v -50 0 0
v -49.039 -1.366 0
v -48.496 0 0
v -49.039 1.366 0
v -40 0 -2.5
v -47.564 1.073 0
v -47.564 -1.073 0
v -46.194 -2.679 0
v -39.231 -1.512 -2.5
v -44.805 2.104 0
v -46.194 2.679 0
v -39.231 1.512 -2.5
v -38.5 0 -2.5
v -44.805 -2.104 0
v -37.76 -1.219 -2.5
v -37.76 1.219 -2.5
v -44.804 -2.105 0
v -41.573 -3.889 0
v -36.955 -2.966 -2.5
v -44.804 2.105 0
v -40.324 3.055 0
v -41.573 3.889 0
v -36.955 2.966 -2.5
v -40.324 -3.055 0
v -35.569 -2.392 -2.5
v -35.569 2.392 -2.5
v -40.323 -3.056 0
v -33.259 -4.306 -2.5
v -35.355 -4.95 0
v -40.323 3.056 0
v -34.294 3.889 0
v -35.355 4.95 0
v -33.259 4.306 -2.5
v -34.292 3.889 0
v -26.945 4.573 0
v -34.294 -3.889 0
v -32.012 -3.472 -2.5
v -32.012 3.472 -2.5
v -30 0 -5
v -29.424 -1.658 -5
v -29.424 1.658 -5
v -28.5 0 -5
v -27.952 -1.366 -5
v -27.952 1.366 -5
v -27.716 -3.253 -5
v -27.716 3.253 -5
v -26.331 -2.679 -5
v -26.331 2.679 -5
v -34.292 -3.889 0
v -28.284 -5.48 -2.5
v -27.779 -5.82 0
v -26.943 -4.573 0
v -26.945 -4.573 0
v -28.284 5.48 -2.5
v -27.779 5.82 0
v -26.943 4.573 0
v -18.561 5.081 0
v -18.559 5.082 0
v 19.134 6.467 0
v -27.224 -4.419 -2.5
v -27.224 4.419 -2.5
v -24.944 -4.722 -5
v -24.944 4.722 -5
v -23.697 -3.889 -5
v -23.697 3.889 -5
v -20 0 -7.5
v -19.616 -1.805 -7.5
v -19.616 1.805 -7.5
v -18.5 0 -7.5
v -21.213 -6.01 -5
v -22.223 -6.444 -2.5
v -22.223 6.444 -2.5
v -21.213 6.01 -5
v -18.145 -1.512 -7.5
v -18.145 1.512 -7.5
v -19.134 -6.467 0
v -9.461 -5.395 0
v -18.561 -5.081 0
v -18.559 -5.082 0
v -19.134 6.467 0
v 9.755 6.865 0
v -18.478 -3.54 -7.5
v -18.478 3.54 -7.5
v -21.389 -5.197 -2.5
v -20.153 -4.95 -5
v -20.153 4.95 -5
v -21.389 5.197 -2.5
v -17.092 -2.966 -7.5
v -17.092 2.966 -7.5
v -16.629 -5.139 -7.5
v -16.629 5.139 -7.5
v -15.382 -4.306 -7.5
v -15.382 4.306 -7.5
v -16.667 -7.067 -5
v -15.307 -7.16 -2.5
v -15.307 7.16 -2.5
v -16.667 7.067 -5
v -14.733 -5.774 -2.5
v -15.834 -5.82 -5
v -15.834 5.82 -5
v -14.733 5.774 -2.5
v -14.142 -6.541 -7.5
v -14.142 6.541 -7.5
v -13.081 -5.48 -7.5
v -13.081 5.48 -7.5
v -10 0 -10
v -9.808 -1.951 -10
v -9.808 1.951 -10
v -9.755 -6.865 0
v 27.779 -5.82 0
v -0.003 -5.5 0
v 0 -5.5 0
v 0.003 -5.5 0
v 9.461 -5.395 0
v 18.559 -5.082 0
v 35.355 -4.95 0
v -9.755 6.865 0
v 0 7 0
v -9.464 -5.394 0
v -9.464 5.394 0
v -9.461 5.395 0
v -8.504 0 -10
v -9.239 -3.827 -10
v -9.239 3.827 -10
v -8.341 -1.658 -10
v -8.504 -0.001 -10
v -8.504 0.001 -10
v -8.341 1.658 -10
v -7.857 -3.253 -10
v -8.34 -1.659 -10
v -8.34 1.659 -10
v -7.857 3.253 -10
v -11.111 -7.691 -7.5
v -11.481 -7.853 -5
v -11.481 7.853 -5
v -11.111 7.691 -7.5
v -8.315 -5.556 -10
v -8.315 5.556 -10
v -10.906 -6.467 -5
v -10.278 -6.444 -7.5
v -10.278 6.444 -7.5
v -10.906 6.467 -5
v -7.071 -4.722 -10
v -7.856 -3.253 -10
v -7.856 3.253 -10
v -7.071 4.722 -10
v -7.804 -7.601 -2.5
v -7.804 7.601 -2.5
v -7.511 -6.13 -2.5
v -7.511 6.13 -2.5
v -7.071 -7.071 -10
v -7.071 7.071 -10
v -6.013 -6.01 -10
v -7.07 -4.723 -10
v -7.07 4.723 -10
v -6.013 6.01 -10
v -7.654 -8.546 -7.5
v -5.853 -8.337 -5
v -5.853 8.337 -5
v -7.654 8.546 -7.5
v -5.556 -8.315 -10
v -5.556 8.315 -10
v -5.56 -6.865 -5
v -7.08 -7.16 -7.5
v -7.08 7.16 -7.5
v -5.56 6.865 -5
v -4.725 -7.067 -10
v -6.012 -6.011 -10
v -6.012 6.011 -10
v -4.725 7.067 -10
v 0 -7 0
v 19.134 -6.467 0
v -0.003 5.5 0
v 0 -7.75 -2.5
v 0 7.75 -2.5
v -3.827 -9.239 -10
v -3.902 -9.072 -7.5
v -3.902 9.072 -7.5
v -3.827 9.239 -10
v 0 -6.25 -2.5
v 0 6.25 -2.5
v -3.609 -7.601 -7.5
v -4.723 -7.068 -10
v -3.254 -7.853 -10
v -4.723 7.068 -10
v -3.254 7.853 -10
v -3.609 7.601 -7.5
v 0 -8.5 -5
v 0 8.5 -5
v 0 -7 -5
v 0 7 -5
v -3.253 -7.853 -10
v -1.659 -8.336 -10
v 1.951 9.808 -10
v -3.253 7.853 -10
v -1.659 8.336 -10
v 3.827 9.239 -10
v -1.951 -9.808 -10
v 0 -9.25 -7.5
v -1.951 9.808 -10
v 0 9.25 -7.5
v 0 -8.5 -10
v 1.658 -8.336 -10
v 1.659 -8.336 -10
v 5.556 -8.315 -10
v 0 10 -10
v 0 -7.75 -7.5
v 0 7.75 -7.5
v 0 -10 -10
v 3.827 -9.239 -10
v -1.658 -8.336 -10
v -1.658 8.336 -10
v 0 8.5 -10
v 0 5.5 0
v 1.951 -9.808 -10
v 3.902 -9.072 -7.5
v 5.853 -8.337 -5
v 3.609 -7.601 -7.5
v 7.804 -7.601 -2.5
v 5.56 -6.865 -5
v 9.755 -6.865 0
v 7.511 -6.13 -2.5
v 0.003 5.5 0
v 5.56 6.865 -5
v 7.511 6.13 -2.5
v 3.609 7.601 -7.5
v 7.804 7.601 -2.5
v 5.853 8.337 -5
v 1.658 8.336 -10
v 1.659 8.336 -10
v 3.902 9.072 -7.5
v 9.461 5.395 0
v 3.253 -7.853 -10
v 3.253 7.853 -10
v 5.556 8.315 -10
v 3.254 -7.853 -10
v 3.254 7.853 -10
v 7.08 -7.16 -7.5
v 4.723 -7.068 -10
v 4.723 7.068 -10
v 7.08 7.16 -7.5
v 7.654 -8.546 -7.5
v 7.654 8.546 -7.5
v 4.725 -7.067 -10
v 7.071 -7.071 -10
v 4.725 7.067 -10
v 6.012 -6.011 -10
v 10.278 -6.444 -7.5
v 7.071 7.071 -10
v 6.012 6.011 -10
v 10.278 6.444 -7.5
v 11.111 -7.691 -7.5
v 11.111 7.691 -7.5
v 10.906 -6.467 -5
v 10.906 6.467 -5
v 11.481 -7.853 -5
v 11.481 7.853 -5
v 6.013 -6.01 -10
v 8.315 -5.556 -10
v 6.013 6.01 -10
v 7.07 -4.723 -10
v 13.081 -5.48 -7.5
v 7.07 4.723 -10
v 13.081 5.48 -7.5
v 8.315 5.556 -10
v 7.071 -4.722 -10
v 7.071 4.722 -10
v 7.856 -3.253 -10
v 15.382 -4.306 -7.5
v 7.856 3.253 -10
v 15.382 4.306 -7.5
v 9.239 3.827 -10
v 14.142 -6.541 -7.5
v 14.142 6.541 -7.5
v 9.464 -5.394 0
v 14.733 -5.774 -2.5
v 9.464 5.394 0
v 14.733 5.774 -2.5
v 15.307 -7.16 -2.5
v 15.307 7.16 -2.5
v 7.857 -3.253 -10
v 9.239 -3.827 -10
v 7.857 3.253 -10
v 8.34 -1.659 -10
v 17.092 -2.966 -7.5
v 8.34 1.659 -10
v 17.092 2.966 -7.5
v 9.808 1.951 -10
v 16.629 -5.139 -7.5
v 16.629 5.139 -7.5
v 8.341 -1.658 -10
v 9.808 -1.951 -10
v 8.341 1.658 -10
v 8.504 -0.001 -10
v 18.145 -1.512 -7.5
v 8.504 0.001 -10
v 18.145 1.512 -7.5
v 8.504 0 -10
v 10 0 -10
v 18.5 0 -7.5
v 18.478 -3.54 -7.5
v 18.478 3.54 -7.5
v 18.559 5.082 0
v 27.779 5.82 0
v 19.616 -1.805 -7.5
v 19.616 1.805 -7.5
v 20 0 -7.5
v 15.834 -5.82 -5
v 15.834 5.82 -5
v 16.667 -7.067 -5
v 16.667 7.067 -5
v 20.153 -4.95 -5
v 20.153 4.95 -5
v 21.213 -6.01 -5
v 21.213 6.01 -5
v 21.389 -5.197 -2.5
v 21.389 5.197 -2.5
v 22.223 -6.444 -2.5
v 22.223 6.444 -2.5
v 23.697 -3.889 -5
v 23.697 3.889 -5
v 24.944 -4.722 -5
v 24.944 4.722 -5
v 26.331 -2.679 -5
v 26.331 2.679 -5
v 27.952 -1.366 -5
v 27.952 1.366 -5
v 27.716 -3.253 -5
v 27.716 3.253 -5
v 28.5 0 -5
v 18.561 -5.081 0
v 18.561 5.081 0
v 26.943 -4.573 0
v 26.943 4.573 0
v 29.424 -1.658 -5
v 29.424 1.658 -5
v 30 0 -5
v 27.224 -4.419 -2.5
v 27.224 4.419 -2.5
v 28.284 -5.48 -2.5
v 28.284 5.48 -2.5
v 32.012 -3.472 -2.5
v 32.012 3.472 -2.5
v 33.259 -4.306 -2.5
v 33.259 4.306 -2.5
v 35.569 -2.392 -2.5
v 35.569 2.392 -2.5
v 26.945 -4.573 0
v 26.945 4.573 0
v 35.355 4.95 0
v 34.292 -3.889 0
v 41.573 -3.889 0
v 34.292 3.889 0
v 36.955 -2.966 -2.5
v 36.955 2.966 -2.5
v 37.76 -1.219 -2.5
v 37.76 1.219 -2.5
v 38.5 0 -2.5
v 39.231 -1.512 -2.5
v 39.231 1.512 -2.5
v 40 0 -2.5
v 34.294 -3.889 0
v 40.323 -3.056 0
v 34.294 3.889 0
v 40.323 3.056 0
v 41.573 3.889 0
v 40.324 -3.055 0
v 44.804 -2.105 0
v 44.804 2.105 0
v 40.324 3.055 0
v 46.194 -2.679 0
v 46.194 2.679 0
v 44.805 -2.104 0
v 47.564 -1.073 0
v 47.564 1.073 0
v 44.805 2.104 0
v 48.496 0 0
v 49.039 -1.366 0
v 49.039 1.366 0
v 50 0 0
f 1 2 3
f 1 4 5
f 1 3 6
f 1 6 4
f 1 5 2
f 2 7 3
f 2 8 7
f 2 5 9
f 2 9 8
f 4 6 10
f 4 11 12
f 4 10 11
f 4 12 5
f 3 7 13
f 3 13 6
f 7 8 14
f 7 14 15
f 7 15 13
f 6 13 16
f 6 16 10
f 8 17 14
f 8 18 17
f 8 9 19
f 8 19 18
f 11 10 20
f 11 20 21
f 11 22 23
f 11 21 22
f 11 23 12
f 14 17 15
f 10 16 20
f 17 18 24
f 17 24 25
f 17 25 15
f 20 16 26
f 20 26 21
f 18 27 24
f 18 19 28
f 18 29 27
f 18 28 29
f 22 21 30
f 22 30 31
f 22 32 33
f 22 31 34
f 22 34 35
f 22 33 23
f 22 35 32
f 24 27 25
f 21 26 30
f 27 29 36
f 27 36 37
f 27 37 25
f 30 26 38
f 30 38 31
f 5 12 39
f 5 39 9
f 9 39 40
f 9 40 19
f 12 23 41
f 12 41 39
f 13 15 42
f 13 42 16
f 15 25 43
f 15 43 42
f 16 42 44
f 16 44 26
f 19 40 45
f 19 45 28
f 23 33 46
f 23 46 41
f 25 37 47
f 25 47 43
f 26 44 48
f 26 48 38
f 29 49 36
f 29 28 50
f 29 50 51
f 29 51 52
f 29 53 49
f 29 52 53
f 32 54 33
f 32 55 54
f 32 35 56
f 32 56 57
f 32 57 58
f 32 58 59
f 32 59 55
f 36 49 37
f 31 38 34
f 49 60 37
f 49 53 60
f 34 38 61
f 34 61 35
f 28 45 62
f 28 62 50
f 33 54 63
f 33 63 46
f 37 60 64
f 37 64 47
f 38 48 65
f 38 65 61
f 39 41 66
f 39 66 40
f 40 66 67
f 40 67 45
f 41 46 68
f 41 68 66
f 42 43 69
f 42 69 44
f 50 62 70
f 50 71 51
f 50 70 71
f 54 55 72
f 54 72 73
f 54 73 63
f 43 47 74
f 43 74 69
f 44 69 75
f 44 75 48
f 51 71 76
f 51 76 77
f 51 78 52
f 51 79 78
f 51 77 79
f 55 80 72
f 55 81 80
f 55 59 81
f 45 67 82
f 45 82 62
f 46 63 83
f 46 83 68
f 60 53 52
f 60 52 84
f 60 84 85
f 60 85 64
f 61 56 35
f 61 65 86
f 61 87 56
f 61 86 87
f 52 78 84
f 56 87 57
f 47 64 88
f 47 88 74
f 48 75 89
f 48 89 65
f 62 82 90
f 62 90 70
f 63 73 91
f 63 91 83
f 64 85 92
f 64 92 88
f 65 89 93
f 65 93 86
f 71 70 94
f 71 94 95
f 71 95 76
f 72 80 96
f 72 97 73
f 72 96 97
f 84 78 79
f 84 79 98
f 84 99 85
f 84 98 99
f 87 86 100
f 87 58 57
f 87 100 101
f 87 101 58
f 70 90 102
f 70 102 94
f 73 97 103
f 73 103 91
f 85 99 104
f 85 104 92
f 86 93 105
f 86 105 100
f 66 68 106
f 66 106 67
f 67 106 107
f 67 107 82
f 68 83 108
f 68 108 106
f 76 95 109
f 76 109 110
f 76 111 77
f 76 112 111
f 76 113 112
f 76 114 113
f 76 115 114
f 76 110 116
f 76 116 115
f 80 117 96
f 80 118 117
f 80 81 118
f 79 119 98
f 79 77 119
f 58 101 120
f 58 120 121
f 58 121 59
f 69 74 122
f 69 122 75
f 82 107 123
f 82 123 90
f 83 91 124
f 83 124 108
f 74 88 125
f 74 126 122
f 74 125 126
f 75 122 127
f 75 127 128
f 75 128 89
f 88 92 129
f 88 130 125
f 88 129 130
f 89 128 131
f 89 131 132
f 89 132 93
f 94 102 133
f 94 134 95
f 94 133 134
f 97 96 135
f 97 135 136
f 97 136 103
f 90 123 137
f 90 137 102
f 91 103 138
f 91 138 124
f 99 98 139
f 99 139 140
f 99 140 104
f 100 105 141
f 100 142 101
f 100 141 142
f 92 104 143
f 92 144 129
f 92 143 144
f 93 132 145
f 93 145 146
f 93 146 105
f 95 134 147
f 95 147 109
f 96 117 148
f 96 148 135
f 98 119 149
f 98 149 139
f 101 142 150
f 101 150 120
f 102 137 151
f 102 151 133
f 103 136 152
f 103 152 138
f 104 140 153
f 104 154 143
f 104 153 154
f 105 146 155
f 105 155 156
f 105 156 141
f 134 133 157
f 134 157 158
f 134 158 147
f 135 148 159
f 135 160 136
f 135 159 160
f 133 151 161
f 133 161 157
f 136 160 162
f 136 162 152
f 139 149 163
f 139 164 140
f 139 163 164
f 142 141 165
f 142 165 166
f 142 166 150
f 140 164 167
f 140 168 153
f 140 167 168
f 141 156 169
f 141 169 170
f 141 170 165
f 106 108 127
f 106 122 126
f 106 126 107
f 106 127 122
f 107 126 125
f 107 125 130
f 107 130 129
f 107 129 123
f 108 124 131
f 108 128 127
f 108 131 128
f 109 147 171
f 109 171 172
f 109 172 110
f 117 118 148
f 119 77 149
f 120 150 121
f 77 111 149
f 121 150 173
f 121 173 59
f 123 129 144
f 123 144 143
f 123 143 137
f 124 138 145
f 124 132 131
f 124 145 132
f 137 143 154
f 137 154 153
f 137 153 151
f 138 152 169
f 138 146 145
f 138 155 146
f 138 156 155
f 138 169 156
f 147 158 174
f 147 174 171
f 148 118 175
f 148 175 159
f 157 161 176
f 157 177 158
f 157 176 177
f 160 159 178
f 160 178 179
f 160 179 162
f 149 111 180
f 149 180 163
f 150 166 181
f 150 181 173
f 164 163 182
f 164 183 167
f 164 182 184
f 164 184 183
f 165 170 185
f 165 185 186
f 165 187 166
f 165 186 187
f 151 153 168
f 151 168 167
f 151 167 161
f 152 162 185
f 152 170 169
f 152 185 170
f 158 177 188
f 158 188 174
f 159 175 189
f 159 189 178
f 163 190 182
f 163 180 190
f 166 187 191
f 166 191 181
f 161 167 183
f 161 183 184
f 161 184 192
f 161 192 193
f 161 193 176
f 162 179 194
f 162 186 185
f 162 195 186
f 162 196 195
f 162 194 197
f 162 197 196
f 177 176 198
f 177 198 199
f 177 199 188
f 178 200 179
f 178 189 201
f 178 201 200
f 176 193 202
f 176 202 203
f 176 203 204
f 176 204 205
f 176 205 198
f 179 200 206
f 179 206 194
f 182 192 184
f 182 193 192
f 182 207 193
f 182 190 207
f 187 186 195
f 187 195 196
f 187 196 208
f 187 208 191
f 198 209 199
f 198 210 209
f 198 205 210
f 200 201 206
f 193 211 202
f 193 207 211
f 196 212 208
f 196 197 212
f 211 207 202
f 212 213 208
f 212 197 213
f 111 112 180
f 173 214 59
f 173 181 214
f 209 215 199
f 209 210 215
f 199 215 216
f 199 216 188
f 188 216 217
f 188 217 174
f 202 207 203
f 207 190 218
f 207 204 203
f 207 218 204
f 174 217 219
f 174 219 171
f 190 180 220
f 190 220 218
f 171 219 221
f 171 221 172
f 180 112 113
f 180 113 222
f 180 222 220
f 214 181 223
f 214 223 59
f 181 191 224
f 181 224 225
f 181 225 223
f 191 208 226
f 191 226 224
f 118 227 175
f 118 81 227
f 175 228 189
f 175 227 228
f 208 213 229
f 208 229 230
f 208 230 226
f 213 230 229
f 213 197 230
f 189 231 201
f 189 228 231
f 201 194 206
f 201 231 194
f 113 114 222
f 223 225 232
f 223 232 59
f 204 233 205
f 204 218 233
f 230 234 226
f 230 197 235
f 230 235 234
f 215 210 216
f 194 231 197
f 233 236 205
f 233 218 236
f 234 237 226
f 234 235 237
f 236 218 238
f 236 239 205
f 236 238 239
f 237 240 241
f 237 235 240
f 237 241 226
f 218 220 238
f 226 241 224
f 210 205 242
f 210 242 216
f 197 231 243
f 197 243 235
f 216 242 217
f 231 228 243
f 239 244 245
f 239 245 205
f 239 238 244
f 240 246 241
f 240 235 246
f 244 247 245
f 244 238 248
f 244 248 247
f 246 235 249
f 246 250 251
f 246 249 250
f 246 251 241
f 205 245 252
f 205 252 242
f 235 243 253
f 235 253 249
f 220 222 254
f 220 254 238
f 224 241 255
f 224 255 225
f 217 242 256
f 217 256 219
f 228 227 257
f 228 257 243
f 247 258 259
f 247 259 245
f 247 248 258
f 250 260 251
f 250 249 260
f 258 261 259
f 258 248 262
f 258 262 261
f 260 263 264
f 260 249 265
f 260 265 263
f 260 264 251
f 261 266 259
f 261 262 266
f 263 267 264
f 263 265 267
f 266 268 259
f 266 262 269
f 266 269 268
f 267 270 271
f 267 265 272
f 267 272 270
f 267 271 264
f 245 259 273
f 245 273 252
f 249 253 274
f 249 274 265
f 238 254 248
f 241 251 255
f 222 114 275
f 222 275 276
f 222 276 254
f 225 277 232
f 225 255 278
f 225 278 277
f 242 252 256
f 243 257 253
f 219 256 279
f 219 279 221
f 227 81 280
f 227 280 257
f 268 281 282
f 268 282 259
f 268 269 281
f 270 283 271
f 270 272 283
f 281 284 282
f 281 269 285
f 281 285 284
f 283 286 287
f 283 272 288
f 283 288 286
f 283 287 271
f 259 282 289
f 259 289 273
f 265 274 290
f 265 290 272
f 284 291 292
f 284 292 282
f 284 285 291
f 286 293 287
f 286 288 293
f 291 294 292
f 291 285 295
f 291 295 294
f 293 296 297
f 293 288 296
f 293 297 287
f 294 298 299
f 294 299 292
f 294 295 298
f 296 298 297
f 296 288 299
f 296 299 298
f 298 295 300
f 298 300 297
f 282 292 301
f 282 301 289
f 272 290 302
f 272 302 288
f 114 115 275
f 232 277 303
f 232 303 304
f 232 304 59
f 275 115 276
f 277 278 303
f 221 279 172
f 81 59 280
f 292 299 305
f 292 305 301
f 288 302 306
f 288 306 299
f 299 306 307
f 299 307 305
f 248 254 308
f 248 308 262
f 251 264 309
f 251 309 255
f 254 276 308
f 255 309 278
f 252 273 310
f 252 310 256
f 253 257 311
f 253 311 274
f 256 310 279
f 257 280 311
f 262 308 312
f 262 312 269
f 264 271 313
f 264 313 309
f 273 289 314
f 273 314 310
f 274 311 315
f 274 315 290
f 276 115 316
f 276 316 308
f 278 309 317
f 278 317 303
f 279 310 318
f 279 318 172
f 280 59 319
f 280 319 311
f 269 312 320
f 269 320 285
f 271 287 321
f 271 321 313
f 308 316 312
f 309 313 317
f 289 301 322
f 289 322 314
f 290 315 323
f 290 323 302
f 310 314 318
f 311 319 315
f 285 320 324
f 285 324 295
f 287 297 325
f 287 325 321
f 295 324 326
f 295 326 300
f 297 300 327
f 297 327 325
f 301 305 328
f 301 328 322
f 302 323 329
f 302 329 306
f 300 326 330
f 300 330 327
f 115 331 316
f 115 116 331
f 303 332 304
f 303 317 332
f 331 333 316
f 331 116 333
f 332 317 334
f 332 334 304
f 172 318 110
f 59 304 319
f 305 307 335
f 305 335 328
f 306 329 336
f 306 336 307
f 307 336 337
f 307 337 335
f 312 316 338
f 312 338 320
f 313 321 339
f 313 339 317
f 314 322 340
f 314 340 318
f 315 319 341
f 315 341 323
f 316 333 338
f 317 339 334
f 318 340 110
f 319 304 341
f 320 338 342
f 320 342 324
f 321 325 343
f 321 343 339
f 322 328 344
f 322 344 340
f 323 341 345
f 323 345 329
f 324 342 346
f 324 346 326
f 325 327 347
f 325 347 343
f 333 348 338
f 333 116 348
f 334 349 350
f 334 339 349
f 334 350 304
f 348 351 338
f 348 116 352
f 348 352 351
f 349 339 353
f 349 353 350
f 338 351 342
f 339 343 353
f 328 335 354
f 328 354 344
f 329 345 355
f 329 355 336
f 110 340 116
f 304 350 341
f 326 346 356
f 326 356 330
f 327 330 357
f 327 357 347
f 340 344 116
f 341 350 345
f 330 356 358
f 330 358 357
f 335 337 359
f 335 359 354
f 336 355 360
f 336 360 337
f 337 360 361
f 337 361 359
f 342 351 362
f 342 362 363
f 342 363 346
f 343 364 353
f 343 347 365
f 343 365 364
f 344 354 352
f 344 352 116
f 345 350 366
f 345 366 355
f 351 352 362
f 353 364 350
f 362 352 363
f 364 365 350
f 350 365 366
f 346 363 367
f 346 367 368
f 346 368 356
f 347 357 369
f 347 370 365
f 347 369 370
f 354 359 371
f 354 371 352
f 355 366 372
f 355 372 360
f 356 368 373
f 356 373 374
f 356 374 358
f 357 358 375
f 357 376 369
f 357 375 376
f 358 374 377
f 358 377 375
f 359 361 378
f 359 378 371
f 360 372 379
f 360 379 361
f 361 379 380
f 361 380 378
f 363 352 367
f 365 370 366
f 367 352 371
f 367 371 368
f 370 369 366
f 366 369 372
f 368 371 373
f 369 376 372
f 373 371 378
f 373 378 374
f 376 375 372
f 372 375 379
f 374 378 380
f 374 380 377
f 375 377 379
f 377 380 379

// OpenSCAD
// Start: lazy_union
default_5_default_5();
// End: lazy_union

// Modules.

// 'PartMaterial undef-default - default 5.0'
module default_5_default_5() {
  // 'None : _combine_solids_and_holes'
  union() {
    // '_combine_solids_and_holes'
    difference() {
      // 'default : _combine_solids_and_holes'
      union() {
        // 'outer'
        multmatrix(m=[[1.0, 0.0, 0.0, 0.0], [0.0, 1.0, 0.0, 0.0], [0.0, 0.0, 1.0, -10.0], [0.0, 0.0, 0.0, 1.0]]) {
          // 'outer : _combine_solids_and_holes'
          union() {
            // 'eliptic_cone : _combine_solids_and_holes'
            union() {
              // 'eliptic_cone'
              linear_extrude(height=10.0, twist=0.0, slices=4, scale=[5.0, 0.7], $fn=32) {
                polygon(points=[[0.0, 10.0], [1.9509032201612833, 9.807852804032304], [3.8268343236508984, 9.238795325112868], [5.555702330196023, 8.314696123025453], [7.0710678118654755, 7.0710678118654755], [8.314696123025453, 5.555702330196022], [9.238795325112868, 3.826834323650898], [9.807852804032304, 1.9509032201612824], [10.0, 0.0], [9.807852804032304, -1.9509032201612824], [9.238795325112868, -3.826834323650898], [8.314696123025453, -5.55570233019602], [7.0710678118654755, -7.0710678118654755], [5.555702330196021, -8.314696123025453], [3.8268343236508984, -9.238795325112868], [1.9509032201612853, -9.807852804032304], [6.123233995736766e-16, -10.0], [-1.9509032201612841, -9.807852804032304], [-3.826834323650897, -9.238795325112868], [-5.55570233019602, -8.314696123025453], [-7.071067811865475, -7.0710678118654755], [-8.314696123025453, -5.555702330196022], [-9.238795325112864, -3.826834323650903], [-9.807852804032304, -1.9509032201612861], [-10.0, -1.2246467991473533e-15], [-9.807852804032304, 1.9509032201612837], [-9.238795325112866, 3.8268343236509006], [-8.314696123025454, 5.55570233019602], [-7.071067811865477, 7.071067811865475], [-5.555702330196022, 8.314696123025453], [-3.8268343236509033, 9.238795325112864], [-1.9509032201612866, 9.807852804032303]]);
              }
            }
          }
        }
      }
      // 'default'
      multmatrix(m=[[1.0, 0.0, 0.0, 0.0], [0.0, 1.0, 0.0, 0.0], [0.0, 0.0, 1.0, -10.001000000000001], [0.0, 0.0, 0.0, 1.0]]) {
        // 'inner : _combine_solids_and_holes'
        union() {
          // 'eliptic_cone : _combine_solids_and_holes'
          union() {
            // 'eliptic_cone'
            linear_extrude(height=10.002, twist=0.0, slices=4, scale=[5.705882352941177, 0.6470588235294118], $fn=32) {
              polygon(points=[[0.0, 8.5], [1.6582677371370909, 8.33667488342746], [3.2528091751032635, 7.852976026345937], [4.72234698066662, 7.067491704571634], [6.0104076400856545, 6.0104076400856545], [7.067491704571634, 4.722346980666618], [7.852976026345937, 3.252809175103263], [8.33667488342746, 1.6582677371370902], [8.5, 0.0], [8.33667488342746, -1.6582677371370902], [7.852976026345937, -3.252809175103263], [7.067491704571635, -4.722346980666616], [6.0104076400856545, -6.0104076400856545], [4.722346980666617, -7.067491704571635], [3.2528091751032635, -7.852976026345937], [1.6582677371370924, -8.33667488342746], [5.204748896376251e-16, -8.5], [-1.6582677371370915, -8.33667488342746], [-3.2528091751032626, -7.852976026345937], [-4.722346980666616, -7.067491704571635], [-6.010407640085654, -6.0104076400856545], [-7.067491704571635, -4.722346980666618], [-7.852976026345935, -3.2528091751032675], [-8.33667488342746, -1.658267737137093], [-8.5, -1.0409497792752501e-15], [-8.33667488342746, 1.658267737137091], [-7.852976026345936, 3.2528091751032653], [-7.067491704571636, 4.722346980666616], [-6.010407640085655, 6.010407640085654], [-4.722346980666618, 7.067491704571634], [-3.252809175103268, 7.852976026345935], [-1.6582677371370937, 8.336674883427458]]);
            }
          }
        }
      }
    }
  }
} // end module default_5_default_5
